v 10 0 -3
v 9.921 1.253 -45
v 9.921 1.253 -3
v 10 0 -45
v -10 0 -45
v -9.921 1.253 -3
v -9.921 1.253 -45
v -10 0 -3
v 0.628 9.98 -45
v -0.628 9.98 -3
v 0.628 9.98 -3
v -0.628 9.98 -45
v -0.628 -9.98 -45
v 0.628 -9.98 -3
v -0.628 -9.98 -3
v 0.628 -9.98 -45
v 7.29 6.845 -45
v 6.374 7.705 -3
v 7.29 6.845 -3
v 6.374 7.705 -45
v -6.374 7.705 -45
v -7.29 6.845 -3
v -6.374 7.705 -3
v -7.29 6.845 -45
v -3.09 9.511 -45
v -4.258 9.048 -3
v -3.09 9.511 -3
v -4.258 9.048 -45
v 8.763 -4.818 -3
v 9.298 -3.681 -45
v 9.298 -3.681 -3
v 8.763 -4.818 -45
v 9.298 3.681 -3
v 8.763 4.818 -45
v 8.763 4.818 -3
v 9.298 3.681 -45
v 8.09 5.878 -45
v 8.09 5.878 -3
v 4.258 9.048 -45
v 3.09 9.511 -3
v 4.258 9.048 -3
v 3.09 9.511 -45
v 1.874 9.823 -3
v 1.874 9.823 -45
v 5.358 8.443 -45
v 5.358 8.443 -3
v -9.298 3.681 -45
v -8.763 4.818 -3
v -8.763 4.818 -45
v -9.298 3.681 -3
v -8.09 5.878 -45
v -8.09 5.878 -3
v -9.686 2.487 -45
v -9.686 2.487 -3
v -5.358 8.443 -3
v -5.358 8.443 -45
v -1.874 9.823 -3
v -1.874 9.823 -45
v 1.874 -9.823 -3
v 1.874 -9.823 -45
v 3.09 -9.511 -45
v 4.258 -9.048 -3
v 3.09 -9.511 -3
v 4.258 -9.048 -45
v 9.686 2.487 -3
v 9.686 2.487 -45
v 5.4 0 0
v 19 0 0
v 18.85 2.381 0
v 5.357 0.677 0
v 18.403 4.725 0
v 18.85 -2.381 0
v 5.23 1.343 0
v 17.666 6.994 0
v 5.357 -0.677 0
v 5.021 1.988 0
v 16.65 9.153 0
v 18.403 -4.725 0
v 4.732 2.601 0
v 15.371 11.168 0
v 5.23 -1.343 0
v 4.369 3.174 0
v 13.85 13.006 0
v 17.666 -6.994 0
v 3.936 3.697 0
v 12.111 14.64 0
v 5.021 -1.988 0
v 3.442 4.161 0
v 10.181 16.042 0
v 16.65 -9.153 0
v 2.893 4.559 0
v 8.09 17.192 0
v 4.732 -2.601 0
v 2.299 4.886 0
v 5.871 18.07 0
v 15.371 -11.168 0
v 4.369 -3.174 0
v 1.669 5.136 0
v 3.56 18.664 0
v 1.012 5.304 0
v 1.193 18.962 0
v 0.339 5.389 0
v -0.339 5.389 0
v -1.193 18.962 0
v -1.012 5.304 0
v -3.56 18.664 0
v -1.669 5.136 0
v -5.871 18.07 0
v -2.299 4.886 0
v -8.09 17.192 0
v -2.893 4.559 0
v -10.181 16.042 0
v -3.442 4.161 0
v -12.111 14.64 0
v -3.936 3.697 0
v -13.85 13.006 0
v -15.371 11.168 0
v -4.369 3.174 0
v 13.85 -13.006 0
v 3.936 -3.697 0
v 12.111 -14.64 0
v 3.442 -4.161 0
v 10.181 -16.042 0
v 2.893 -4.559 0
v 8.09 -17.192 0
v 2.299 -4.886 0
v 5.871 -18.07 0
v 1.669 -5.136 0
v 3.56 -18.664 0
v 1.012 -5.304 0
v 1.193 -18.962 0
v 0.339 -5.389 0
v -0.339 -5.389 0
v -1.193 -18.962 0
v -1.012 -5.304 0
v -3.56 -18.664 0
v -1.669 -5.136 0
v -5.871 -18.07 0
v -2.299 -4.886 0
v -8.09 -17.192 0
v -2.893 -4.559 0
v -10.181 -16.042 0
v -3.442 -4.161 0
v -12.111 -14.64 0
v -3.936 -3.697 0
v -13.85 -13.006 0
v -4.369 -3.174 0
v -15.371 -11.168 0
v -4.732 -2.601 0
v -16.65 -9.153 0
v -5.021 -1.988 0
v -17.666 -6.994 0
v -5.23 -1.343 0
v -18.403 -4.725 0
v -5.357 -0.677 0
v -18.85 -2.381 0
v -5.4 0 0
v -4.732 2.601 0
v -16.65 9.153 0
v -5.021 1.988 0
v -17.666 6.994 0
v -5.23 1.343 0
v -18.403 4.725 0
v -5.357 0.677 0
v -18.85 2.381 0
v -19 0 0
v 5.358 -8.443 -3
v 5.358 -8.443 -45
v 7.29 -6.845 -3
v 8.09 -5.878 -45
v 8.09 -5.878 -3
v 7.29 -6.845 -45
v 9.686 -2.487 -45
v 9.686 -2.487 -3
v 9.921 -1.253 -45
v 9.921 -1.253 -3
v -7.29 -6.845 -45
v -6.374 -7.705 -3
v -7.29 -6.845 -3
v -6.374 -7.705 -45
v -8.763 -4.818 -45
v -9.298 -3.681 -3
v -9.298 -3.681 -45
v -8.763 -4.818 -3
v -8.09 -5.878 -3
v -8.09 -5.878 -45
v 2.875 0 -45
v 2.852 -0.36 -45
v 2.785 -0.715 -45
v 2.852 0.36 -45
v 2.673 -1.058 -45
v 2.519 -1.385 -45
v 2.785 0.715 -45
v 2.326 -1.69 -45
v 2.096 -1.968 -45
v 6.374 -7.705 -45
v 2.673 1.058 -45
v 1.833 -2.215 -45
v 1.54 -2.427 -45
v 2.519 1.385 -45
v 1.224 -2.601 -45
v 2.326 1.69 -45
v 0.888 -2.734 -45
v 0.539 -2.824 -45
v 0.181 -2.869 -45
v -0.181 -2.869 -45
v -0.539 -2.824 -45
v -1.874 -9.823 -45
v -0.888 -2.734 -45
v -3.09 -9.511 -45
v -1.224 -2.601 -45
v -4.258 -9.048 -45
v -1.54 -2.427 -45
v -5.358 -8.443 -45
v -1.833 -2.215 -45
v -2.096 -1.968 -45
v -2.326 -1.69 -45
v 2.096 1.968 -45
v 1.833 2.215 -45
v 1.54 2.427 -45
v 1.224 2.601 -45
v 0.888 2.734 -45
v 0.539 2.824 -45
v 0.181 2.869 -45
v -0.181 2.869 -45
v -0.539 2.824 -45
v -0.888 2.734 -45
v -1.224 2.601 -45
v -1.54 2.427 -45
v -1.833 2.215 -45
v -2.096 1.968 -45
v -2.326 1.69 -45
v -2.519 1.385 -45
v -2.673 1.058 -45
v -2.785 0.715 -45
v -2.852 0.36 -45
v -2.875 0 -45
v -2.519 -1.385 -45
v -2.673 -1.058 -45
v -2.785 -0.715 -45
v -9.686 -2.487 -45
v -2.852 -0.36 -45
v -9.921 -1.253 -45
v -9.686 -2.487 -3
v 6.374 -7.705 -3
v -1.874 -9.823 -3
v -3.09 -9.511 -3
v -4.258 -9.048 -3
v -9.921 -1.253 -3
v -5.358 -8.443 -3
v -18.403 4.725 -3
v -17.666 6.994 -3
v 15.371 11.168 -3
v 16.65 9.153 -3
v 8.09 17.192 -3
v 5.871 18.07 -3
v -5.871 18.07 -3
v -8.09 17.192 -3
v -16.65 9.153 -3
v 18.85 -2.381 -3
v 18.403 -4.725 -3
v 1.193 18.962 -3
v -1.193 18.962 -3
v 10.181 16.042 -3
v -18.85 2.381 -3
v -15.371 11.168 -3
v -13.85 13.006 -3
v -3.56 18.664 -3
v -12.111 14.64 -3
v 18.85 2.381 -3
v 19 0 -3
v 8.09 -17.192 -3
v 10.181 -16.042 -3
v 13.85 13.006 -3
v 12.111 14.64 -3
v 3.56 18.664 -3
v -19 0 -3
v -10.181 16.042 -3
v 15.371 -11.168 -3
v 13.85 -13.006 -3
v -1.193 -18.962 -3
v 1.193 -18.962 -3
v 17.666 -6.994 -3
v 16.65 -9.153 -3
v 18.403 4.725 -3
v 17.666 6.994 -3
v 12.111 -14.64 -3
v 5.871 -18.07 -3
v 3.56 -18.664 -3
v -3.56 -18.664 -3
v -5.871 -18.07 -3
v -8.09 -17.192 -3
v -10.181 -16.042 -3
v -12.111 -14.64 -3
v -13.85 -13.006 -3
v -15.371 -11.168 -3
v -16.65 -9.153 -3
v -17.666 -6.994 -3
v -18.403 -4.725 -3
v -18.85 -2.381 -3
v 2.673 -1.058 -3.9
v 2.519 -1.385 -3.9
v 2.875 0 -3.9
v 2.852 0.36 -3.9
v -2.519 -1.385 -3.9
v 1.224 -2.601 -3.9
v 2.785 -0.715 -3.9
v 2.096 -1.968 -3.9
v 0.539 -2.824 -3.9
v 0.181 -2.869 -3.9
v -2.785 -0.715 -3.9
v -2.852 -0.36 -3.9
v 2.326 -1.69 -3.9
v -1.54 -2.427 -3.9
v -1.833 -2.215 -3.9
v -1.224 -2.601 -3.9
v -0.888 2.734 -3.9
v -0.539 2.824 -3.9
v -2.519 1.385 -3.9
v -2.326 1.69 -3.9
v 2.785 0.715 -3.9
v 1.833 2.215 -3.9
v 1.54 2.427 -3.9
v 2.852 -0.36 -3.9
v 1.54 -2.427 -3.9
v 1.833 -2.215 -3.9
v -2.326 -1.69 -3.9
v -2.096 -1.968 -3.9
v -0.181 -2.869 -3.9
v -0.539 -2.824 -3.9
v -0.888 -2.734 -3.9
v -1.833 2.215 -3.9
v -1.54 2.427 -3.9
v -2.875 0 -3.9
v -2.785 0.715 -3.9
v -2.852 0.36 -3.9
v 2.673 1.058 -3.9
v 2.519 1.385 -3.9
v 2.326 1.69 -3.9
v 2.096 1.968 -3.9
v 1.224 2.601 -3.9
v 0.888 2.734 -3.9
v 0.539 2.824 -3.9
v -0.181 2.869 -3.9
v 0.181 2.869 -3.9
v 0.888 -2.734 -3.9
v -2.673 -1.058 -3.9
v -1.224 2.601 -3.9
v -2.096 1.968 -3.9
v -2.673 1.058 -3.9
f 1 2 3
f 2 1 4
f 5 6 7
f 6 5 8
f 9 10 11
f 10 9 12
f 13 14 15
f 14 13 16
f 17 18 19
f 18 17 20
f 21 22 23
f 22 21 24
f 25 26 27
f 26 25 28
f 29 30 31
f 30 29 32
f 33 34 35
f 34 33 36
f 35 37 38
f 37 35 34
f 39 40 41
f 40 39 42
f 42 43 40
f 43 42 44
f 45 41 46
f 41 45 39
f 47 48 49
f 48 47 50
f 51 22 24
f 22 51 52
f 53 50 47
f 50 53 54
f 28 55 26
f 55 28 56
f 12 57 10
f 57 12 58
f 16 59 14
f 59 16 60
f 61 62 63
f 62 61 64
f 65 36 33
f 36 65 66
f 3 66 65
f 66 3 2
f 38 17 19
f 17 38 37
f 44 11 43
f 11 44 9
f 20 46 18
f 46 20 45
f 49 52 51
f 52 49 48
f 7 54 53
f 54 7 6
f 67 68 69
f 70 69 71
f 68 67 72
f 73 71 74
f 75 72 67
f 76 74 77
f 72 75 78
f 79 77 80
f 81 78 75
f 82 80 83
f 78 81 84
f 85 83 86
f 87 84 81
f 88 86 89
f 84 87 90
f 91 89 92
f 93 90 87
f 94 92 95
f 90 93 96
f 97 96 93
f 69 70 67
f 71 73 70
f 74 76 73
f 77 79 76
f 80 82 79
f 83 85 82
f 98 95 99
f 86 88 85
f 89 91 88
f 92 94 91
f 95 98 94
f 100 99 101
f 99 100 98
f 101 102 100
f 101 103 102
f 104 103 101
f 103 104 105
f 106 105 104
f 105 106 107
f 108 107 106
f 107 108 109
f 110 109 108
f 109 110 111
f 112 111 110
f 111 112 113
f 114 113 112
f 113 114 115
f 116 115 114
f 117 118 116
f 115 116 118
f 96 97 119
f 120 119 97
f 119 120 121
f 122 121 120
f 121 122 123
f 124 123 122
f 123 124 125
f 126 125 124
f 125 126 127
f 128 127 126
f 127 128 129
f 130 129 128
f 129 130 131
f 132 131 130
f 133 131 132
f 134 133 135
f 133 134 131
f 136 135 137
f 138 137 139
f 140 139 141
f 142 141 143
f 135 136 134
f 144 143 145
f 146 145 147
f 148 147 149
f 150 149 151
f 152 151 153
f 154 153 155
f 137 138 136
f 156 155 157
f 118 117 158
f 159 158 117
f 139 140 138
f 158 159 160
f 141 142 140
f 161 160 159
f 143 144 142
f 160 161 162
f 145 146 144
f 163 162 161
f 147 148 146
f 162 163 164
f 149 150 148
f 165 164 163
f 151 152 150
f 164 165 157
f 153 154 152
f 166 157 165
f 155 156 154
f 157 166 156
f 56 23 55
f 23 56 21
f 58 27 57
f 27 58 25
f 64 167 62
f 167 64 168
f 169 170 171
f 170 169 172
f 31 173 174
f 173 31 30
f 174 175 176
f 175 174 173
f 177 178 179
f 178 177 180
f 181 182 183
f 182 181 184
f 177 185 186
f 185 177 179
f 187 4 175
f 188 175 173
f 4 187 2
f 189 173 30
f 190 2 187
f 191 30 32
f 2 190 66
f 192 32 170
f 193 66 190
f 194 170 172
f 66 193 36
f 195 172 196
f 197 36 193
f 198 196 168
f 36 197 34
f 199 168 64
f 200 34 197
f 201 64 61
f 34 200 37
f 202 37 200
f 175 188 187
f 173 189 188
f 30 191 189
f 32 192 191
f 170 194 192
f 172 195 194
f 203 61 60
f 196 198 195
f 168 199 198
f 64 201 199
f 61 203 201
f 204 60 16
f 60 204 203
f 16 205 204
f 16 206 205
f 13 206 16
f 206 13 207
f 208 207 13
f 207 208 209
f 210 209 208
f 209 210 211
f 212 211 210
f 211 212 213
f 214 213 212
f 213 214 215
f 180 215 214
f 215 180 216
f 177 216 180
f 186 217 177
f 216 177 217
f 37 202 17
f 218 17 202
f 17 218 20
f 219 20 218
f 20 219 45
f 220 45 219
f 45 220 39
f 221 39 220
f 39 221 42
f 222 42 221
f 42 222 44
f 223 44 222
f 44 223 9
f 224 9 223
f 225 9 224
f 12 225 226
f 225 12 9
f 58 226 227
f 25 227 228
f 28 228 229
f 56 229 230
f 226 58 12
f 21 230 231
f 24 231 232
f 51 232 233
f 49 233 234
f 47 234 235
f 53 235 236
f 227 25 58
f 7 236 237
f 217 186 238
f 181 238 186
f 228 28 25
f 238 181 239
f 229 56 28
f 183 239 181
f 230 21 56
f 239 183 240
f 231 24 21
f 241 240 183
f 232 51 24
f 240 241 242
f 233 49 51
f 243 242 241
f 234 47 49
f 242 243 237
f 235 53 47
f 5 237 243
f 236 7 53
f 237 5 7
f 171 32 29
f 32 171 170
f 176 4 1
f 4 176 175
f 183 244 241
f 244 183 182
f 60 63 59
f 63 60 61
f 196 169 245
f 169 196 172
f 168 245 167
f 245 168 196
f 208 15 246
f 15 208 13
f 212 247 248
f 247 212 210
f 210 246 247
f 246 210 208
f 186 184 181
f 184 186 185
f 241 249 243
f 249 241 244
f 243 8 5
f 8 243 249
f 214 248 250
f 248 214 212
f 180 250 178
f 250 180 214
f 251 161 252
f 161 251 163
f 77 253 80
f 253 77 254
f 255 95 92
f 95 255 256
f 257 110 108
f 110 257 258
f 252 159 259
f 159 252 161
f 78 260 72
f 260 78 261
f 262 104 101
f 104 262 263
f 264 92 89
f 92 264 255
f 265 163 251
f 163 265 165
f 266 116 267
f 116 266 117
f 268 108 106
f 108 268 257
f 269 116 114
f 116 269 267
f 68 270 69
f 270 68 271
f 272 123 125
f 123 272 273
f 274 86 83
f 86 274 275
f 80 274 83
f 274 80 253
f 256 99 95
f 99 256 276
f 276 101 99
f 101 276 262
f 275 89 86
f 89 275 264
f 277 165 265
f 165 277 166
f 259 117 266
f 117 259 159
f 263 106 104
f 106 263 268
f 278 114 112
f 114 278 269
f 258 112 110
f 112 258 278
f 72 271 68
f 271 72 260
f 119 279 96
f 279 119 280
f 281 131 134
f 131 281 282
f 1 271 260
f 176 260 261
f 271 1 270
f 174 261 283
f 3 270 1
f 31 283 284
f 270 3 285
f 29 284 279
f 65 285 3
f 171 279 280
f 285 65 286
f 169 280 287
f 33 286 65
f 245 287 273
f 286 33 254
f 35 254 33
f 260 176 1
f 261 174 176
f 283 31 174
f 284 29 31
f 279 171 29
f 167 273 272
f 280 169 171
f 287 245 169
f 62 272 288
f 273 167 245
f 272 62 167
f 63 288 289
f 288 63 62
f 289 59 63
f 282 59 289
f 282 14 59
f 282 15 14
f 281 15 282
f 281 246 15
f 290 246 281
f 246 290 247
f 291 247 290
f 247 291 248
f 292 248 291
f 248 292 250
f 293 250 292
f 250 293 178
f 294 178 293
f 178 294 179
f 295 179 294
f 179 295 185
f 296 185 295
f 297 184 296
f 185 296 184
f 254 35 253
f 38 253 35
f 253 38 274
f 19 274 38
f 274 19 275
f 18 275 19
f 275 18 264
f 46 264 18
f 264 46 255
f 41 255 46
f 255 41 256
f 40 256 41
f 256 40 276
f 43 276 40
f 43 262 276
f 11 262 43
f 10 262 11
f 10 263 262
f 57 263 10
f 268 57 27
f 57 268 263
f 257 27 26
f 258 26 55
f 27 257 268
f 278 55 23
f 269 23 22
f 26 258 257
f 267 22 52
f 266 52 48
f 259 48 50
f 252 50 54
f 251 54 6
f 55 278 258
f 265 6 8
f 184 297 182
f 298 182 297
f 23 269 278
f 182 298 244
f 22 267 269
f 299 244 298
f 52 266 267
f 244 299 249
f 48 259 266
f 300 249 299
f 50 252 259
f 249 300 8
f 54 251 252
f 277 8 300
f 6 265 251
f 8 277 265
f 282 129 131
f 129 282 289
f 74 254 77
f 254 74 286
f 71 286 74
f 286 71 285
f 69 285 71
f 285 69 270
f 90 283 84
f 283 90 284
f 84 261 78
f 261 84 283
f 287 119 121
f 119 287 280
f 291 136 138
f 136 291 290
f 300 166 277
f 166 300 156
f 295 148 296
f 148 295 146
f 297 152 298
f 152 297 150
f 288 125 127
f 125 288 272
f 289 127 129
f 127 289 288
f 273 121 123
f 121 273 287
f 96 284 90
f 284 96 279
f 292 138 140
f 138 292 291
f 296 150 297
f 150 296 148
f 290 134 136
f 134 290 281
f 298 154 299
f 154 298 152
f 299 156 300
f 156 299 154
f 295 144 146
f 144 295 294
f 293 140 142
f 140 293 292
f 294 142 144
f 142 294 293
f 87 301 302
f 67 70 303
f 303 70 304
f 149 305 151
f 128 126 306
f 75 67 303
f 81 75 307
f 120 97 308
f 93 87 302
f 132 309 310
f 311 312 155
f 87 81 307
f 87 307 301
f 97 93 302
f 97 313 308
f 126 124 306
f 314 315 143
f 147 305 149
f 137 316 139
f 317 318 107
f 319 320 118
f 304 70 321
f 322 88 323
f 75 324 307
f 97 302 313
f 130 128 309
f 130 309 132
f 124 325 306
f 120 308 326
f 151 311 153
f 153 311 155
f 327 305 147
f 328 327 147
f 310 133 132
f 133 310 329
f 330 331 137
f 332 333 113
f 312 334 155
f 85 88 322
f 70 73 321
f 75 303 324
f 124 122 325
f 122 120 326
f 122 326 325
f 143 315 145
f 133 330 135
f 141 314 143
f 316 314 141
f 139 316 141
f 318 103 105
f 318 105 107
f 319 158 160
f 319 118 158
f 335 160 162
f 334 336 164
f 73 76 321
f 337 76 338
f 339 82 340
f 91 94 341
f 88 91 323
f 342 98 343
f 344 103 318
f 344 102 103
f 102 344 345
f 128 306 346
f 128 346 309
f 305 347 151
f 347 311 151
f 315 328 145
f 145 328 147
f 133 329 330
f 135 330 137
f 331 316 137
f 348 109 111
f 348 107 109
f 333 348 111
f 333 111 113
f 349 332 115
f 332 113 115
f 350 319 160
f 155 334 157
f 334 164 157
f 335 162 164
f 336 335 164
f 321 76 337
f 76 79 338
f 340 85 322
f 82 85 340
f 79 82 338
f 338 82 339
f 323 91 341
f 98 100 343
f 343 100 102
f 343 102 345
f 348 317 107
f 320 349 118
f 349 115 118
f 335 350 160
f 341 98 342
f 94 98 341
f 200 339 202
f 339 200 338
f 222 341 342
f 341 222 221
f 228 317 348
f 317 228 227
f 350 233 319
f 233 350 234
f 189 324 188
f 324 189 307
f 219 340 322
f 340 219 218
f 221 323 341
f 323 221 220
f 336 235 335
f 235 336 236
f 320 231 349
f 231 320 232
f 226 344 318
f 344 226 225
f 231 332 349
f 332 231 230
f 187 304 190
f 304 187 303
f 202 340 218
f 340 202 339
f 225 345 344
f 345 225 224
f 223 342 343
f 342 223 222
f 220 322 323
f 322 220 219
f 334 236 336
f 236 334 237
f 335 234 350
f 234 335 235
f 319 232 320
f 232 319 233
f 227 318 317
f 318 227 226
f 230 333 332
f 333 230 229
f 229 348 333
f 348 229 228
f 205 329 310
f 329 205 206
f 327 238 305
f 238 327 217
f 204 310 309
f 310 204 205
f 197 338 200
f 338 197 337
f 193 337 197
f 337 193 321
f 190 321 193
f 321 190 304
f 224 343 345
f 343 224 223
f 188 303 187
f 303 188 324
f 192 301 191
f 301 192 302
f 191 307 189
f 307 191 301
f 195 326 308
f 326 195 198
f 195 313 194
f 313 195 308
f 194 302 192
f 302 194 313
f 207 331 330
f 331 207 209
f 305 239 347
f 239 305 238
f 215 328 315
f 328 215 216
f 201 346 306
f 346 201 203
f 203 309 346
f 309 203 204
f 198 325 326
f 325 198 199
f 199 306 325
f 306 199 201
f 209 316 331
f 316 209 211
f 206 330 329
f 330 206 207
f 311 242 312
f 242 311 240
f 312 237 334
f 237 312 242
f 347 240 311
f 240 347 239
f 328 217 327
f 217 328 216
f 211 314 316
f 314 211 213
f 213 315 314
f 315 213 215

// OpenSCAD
$fn = 50;


difference() {
	union() {
		translate(v = [0, 0, -45.0000000000]) {
			cylinder(h = 45, r = 10.0000000000);
		}
		translate(v = [0, 0, -3.0000000000]) {
			cylinder(h = 3, r = 19.0000000000);
		}
	}
	union() {
		translate(v = [0, 0, 0]) {
			rotate(a = [0, 0, 0]) {
				difference() {
					union() {
						#translate(v = [0, 0, -45.0000000000]) {
							cylinder(h = 45, r = 2.6000000000);
						}
						#translate(v = [0, 0, -3.9000000000]) {
							cylinder(h = 3.9000000000, r = 10.0000000000, r1 = 2.8750000000, r2 = 5.4000000000);
						}
						#translate(v = [0, 0, -45.0000000000]) {
							cylinder(h = 45, r = 2.8750000000);
						}
						#translate(v = [0, 0, -45.0000000000]) {
							cylinder(h = 45, r = 2.6000000000);
						}
					}
					union();
				}
			}
		}
	}
}
